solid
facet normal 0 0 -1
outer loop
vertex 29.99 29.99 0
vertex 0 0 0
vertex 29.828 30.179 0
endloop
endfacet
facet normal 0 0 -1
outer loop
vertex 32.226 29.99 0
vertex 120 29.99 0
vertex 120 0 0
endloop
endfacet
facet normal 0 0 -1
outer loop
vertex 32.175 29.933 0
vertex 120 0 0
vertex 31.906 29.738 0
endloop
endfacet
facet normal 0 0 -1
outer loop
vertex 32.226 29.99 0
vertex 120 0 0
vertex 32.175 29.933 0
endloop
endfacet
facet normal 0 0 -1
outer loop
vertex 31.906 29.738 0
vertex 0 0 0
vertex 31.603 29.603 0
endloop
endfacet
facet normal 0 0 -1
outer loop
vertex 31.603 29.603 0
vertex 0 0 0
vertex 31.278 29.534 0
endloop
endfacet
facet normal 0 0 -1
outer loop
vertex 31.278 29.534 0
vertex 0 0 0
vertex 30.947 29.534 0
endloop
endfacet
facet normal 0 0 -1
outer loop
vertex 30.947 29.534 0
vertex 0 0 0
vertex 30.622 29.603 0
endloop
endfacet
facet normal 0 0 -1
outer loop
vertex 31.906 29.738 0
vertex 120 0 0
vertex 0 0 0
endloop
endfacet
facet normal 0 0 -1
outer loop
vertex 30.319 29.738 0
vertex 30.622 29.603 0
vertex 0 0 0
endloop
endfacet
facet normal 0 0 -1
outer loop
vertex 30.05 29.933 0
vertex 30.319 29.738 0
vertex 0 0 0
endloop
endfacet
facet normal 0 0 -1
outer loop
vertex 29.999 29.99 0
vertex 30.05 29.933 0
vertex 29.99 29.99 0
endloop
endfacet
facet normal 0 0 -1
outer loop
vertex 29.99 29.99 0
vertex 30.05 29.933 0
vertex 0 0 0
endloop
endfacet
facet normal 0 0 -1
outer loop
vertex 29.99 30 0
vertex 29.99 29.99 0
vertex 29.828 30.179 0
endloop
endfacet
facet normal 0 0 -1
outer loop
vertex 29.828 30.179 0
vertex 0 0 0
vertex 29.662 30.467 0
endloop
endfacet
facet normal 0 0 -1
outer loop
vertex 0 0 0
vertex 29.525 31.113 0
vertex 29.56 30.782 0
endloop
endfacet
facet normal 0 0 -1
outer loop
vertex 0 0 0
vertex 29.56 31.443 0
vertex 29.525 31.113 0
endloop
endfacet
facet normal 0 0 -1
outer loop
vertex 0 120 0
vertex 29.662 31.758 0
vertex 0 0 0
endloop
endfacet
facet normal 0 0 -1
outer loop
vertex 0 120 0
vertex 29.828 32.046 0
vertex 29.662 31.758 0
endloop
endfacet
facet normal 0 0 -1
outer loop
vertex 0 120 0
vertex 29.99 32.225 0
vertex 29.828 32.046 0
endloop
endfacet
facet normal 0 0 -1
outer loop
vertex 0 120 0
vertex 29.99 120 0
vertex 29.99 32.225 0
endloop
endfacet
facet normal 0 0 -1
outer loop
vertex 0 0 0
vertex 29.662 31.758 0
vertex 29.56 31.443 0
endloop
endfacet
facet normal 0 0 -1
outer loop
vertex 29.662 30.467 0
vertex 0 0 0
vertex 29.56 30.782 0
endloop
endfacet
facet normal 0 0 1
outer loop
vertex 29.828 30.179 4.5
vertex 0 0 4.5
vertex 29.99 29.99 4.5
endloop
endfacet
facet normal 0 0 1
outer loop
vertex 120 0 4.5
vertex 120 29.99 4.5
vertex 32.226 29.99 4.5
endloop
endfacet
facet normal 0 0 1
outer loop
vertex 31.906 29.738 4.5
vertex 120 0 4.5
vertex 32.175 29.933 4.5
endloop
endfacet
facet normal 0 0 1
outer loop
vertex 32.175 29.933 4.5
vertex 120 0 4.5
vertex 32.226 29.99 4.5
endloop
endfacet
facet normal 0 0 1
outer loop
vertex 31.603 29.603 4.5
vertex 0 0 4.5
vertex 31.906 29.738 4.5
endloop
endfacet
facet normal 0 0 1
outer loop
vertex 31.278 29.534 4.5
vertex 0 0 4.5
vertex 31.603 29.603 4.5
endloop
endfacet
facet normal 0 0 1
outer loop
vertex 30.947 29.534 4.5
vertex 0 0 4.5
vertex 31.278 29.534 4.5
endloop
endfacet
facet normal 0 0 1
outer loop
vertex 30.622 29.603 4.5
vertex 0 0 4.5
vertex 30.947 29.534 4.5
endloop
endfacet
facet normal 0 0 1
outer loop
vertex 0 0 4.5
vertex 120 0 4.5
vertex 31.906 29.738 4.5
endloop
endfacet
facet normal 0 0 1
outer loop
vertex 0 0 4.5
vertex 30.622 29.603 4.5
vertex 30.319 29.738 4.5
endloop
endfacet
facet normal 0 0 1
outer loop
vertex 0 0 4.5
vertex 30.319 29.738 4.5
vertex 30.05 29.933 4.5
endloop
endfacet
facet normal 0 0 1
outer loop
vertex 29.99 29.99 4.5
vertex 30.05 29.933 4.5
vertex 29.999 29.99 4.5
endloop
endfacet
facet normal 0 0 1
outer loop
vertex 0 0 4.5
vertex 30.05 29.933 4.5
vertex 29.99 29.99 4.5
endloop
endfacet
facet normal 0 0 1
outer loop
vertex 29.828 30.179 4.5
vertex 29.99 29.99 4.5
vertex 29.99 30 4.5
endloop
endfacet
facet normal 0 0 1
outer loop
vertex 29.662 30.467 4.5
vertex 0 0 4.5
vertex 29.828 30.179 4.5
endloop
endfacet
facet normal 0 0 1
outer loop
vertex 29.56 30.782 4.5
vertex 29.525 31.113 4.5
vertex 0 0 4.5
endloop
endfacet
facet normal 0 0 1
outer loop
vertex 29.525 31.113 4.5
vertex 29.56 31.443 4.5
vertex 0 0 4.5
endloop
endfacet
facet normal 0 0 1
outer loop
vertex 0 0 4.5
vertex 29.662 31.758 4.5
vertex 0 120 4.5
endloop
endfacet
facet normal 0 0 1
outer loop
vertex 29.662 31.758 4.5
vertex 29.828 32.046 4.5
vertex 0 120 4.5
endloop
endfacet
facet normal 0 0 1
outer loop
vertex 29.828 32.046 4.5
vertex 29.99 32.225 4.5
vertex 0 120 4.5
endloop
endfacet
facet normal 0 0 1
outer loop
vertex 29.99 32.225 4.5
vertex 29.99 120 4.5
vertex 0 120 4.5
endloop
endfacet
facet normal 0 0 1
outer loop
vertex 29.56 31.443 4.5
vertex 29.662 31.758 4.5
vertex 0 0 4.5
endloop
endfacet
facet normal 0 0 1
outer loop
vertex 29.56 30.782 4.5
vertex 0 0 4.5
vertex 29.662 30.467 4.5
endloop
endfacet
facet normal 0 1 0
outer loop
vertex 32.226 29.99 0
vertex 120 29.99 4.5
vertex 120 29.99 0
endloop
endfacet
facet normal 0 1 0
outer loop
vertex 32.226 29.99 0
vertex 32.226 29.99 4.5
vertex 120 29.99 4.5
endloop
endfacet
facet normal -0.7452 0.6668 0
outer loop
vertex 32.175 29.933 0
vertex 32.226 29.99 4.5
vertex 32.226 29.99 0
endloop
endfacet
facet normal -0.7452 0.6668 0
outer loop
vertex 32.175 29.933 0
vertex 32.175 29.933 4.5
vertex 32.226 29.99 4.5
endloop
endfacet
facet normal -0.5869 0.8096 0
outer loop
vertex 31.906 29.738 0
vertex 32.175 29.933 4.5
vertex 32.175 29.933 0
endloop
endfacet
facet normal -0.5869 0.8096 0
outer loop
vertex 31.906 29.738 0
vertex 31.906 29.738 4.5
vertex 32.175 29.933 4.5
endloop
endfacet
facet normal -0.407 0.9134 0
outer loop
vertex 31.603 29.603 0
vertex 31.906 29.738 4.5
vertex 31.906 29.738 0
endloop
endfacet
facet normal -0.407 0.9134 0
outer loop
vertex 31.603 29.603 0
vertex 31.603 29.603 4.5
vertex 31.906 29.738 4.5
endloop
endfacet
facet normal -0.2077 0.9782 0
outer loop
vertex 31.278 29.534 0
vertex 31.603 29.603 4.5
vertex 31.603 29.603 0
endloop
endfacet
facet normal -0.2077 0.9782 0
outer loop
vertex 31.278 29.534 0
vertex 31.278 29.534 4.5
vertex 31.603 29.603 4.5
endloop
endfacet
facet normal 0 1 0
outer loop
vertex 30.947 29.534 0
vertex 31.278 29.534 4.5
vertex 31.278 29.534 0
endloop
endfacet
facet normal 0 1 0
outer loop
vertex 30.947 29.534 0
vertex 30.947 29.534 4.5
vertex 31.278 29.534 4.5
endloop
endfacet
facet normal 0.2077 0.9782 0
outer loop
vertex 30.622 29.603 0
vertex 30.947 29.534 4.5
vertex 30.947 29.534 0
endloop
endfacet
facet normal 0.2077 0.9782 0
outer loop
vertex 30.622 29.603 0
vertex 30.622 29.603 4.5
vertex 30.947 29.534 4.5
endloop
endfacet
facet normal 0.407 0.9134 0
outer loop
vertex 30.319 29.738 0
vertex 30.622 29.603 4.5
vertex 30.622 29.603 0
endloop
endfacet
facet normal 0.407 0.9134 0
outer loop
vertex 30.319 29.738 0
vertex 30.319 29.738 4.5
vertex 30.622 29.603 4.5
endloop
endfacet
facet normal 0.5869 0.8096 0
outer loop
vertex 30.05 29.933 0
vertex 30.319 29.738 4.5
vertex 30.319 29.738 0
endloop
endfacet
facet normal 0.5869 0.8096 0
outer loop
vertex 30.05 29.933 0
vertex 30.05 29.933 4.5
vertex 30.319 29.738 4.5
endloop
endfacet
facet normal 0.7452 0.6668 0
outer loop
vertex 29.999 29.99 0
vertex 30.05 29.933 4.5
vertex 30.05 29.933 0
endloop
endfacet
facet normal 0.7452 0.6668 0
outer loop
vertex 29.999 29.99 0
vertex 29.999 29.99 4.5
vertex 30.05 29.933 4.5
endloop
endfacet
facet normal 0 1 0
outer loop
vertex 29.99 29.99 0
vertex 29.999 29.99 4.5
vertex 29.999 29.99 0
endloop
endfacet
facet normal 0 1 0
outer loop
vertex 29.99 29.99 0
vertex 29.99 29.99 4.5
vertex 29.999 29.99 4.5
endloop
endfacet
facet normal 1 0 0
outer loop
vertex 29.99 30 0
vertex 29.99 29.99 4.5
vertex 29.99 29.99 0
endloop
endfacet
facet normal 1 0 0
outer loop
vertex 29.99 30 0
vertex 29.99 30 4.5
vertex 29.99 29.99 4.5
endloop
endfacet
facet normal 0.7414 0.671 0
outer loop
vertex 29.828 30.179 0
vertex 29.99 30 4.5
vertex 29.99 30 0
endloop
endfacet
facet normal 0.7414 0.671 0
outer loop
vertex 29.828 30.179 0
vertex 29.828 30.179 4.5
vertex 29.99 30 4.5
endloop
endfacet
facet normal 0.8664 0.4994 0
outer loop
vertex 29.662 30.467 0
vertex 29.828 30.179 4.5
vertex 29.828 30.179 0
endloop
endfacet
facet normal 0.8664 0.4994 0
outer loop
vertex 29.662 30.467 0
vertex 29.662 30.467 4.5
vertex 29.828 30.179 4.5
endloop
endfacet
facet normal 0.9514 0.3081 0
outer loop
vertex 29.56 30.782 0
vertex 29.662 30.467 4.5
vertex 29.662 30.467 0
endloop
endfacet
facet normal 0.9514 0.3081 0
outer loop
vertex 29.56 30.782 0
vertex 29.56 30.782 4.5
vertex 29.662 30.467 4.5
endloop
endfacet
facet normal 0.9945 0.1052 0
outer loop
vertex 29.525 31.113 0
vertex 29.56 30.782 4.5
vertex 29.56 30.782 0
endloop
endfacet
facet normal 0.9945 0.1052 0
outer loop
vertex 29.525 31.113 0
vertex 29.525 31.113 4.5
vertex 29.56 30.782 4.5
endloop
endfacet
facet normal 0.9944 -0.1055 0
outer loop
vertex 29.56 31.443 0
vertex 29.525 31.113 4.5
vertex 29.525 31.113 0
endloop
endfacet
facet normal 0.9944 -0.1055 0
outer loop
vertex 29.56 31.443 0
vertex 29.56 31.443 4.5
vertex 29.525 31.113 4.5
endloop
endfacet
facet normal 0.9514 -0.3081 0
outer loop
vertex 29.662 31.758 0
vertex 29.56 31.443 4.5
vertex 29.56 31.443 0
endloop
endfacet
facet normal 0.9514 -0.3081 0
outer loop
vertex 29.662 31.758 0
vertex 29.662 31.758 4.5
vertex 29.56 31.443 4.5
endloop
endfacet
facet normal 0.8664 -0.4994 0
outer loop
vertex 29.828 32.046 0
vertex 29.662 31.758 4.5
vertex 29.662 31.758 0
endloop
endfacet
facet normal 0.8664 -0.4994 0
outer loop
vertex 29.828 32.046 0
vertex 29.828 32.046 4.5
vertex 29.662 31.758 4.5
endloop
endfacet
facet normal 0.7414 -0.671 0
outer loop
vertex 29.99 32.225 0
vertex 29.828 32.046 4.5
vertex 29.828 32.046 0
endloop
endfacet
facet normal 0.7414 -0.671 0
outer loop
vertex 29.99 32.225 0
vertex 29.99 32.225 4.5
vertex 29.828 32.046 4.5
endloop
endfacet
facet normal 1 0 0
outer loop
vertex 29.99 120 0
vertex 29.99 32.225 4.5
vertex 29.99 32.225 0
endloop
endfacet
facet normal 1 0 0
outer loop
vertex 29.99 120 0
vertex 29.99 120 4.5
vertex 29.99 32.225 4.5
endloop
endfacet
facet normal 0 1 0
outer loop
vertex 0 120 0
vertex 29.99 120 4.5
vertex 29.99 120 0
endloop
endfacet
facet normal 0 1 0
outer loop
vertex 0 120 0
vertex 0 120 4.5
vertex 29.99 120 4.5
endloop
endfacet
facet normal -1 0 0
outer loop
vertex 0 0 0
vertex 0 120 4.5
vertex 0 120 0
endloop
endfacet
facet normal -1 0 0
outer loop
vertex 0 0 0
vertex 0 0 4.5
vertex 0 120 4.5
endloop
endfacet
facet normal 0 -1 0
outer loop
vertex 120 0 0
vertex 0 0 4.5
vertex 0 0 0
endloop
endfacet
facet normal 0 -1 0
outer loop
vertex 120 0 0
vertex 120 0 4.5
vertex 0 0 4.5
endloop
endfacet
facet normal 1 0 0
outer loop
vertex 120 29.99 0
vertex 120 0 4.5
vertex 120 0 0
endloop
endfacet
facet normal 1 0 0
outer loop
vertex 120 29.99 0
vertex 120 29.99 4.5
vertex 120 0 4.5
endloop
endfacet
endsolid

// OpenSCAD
// file: ../extensions/easy_vector.scad
use <Round-Anything/polyround.scad>
/*
Fundamental types:
   Plain point is [x, y]
   Radii point is [x, y, radius]
   Point is simple point or radii point
   Line is [point, point]
   Polyline is [point, point, point...]

   Points or Lines are Polylines.
*/

function is_plain_point(target) =
  is_list(target) && len(target) == 2 && is_num(target.x) && is_num(target.y);

function is_radii_point(target) =
  is_list(target) && len(target) == 3 && is_num(target.x) && is_num(target.y) && is_num(target.z);

function is_point(target) =
  is_plain_point(target) || is_radii_point(target);

function is_line(target) =
  is_list(target) && len(target) == 2 && is_point(target[0]) && is_point(target[1]);

function is_polyline(target) =
  is_list(target) && len(target) > 0 && is_point(target[0]);

function radii_to_plain(target) =
  is_plain_point(target) ? target
  : is_radii_point(target) ? [target.x, target.y]
  : [for (p = target) radii_to_plain(p)];

function plain_to_radii(target, radius) =
  [for (p = target) [p.x, p.y, radius]];

function round_corners(target, radius) =
  polyRound(plain_to_radii(target, radius), $fn);

/* Create basis transformation functions */
function basis_transformer(target_origin, target_x, target_y) =
  let(new_x = (target_x - target_origin) / norm(target_x - target_origin),
      new_y = (target_y - target_origin) / norm(target_y - target_origin))
    function (vec) vec.x * new_x + vec.y * new_y + target_origin;

/* Rotate a 2D vector by a given angle (on the z-axis) */
/* Deprecated: use "rot" + multiplication */
function rotation(vec, angle) =
  [vec.x * cos(angle) - vec.y * sin(angle),
   vec.x * sin(angle) + vec.y * cos(angle)];

/* Point in line v1-->v2 that's _target_ distance from v1. */
/* Target can also be a vector, in this case, y will be */
/* perpendicular to the line. */
function in_line(line, target, restrict=false) =
  let(original_vector = line[1] - line[0],
      unit_x = original_vector / norm(original_vector),
      unit_y = rotation(unit_x, 90),
      new_vector = is_num(target)
        ? target * unit_x
        : target.x * unit_x + target.y * unit_y)
  !restrict ? new_vector + line[0]
  : norm(new_vector) > norm(original_vector) ? line[1]
  : norm(new_vector) < 0 ? line[0]
  : new_vector + line[0];

/* Mirrors the object around line center. */
module in_line_mirror(line, distance, restrict=false) {
  center = mid(line);
  right_line = [center, line[1]];
  left_line = [center, line[0]];

  dist = is_num(distance) ? distance : [distance.x, -distance.y];
  left_anchor = in_line(left_line, dist, restrict=restrict);
  right_anchor = in_line(right_line, distance, restrict=restrict);

  translate(left_anchor)
    children();

  translate(right_anchor)
    mirror([1, 0, 0]) children();
}

/* Parallel line at distance from the given one */
function parallel(line, distance) =
  [in_line([line.x, line.y], [0, distance]),
   in_line([line.y, line.x], [0, -distance])];

/* Point crossing 2 lines */
// TODO: Test parallel lines
// TODO: Test collinear lines
function crossing(line1, line2) =
  let(cross_product = function(v1, v2) v1.x * v2.y - v1.y * v2.x,
      p = radii_to_plain(line1[0]),
      r = radii_to_plain(line1[1] - line1[0]),
      q = radii_to_plain(line2[0]),
      s = radii_to_plain(line2[1] - line2[0]),
      t = cross_product((q - p), s) / cross_product(r, s))
    p + t * r;

/* That's exactly translate, but the intention is */
/* clearer. I want to "glue" the [0, 0] point of */
/* this object to the destination vector. */
module snap(to_point) {
  // TODO: extend to snap to a line.
  translate(radii_to_plain(to_point)) children();
}


/*
  Matrix transformations
*/

function to_affine(vecs) = [for (v = vecs) [v.x, v.y, 1]];

function from_affine(vecs) = [for (v = vecs) [v.x, v.y]];

function apply(vecs, transformations) = from_affine(to_affine(vecs) * transformations);

function rot(angle) =
  let(a = angle)
    [[ cos(a), sin(a),     0],
     [-sin(a), cos(a),     0],
     [      0,      0,     1]];

function mov(target) =
  let(t = target)
    [[1  ,   0,   0],
     [0  ,   1,   0],
     [t.x, t.y,   1]];

function scl(factor) =
  let(f = factor)
    [[f, 0, 0],
     [0, f, 0],
     [0, 0, 1]];

function mirror_x() =
  [[-1, 0, 0],
   [ 0, 1, 0],
   [ 0, 0, 1]];

function mirror_y() =
  [[1,  0, 0],
   [0, -1, 0],
   [0,  0, 1]];

inner_sum = function(rslt, vecs, index)
  let(size = len(vecs))
    index >= size
    ? rslt
    : inner_sum(rslt + vecs[index], vecs, index + 1);

function sum(vecs) =
  let(size = len(vecs))
    len(vecs) > 1
    ? inner_sum(vecs[0], vecs, 1)
    : vecs[0];

function avg(vecs) = sum(vecs) / len(vecs);

/* Center of a polygon or line */
function center(vecs) = avg(vecs);

/* Mid point of a line */
function mid(v1, v2=[0, 0]) =
  let(a = is_line(v1) ? radii_to_plain(v1[0]) : radii_to_plain(v1),
      b = is_line(v1) ? radii_to_plain(v1[1]) : radii_to_plain(v2))
  a + (b - a) / 2;

/* TODO Snap vecs to vec */
/* TODO Snap vecs to line */
/* TODO Restrict to line */
/* TODO Scale (up/down) to bounding box */
/* TODO Function chain */
// file: ../extensions/easy_pocket.scad
use <easy_vector.scad>

function dogbone() = [for (angle = [45, 135, 225, 315]) rotation([1, 0], angle)];
function u_shaped() = [[1, 0], [-1, 0], [-1, 0], [1, 0]];
function u_shaped_south() = [[1, 0], [-1, 0], false, false];
function t_shaped() = [[0, 1], [0, 1], [0, -1], [0, -1]];

function center() = [-1/2, -1/2];
function north() =[-1/2, -1];
function south() =[-1/2, 0];
function east() =[-1, -1/2];
function west() =[0, -1/2];
function sw() = [0, 0];
function se() = [-1, 0];
function ne() = [-1, -1];
function nw() = [0, -1];

module pocket(width, height, bit_diameter=3.175, clearance=0.01, snap_point=sw(), fillet=dogbone()) {
  bit_radius = bit_diameter / 2;

  right = width + clearance;
  left = 0 - clearance;
  top = height + clearance;
  bottom = 0 - clearance;

  points = [[left, bottom],
            [right, bottom],
            [right, top],
            [left, top]];

  fillet_points = [for (i = [0:3]) if (fillet[i]) points[i] + bit_radius * fillet[i]];

  translate([width * snap_point.x, height * snap_point.y]) {
    polygon(points);
    for (point = fillet_points) translate(point) circle(d=bit_diameter);
  }
}
// file: ../extensions/easy_movement.scad
// Backward (+y axis)
module bw(distance) {
  translate([0, distance, 0]) children();
}

// Forward (-y axis)
module fw(distance) {
  bw(-distance) children();
}

// Right (+x axis)
module rg(distance) {
  translate([distance, 0, 0]) children();
}

// Left (-x axis)
module lf(distance) {
  rg(-distance) children();
}

// Up (+z axis)
module up(distance) {
  translate([0, 0, distance]) children();
}

// Down (-z axis)
module dn(distance) {
  up(-distance) children();
}

// Centered square
module sqr(width, depth) {
  square([width, depth], center=true);
}
// main file
use <../extensions/easy_movement.scad>
use <../extensions/easy_pocket.scad>

$fn = 30;

width = 120;
depth = 120;
height = 4.5;

gap = 30;

linear_extrude(height) {
  difference() {
    square([width, depth]);
    bw(gap) rg(gap) pocket(width, depth);
  }
}
